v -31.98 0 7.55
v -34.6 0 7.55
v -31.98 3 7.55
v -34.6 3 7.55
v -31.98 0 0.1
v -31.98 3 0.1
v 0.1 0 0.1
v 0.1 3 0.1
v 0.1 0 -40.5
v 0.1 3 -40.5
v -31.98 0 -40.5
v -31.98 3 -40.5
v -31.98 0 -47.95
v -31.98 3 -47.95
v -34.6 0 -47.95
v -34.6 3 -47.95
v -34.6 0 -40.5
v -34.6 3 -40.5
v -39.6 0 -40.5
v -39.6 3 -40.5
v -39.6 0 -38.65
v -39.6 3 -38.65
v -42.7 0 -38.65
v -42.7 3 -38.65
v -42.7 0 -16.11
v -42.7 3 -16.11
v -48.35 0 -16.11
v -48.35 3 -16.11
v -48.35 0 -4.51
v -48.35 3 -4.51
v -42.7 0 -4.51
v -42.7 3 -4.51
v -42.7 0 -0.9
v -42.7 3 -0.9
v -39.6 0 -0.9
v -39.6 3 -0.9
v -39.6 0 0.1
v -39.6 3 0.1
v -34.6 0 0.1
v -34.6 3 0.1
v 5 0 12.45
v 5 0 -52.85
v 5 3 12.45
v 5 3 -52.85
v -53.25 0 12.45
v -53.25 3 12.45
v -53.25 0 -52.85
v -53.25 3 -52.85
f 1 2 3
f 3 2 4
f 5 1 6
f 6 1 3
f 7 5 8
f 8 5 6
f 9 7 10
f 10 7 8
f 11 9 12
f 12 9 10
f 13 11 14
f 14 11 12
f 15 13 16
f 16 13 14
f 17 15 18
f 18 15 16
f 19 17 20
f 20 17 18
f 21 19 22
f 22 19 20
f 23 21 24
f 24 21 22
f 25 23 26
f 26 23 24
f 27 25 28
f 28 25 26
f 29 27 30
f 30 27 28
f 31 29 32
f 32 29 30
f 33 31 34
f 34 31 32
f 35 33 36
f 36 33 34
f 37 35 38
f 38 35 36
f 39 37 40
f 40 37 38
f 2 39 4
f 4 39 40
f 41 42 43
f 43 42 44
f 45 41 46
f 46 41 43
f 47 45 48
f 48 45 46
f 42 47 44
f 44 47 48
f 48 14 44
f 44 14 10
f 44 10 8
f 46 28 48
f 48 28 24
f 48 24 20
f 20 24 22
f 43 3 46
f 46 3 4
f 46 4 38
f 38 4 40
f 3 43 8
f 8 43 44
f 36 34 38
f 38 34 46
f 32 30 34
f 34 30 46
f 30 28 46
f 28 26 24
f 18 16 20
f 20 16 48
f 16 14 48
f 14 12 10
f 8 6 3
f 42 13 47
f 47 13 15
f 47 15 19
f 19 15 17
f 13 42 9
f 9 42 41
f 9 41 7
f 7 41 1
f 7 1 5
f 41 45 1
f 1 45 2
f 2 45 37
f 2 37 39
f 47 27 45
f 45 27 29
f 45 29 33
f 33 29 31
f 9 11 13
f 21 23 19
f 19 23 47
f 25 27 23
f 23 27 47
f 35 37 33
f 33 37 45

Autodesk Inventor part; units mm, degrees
ref_plane "YZ Plane" through (0, 0, 0) normal (1, 0, 0) x (0, 1, 0)
ref_plane "XZ Plane" through (0, 0, 0) normal (0, 1, 0) x (-1, 0, 0)
ref_plane "XY Plane" through (0, 0, 0) normal (0, 0, 1) x (1, 0, 0)
sketch "Sketch1" plane through (0, 0, 0) normal (0, 1, 0) x (-1, 0, 0)
  line L0 (0, 0) -> (32.08, 0)
  line L1 (39.5, 0) -> (39.5, -1)
  line L2 (39.5, -40.4) -> (34.5, -40.4)
  line L3 (0, -40.4) -> (0, 0)
  line L4 (39.5, -20.2) -> (34.5, -20.2) construction
  line L5 (34.5, 7.45) -> (32.08, 7.45)
  line L6 (32.08, 7.45) -> (32.08, 0)
  line L7 (32.08, -47.85) -> (34.5, -47.85)
  line L8 (34.5, -47.85) -> (34.5, -40.4)
  line L9 (42.6, -1) -> (39.5, -1)
  line L10 (39.5, -1) -> (39.5, -38.55) construction
  line L11 (39.5, -38.55) -> (42.6, -38.55)
  line L12 (42.6, -38.55) -> (42.6, -16.01)
  line L13 (48.25, -4.61) -> (42.6, -4.61)
  line L14 (42.6, -4.61) -> (42.6, -16.01) construction
  line L15 (42.6, -16.01) -> (48.25, -16.01)
  line L16 (48.25, -16.01) -> (48.25, -4.61)
  line L17 (48.25, 7.45) -> (0, 7.45) construction
  line L18 (0, 7.45) -> (0, -47.85) construction
  line L19 (0, -47.85) -> (48.25, -47.85) construction
  line L20 (48.25, -47.85) -> (48.25, 7.45) construction
  line L21 (-5, 12.45) -> (53.25, 12.45)
  line L22 (53.25, 12.45) -> (53.25, -52.85)
  line L23 (53.25, -52.85) -> (-5, -52.85)
  line L24 (-5, -52.85) -> (-5, 12.45)
  line L25 (34.5, 0) -> (39.5, 0)
  line L26 (32.08, 0) -> (34.5, 0) construction
  line L27 (34.5, -40.4) -> (32.08, -40.4) construction
  line L28 (32.08, -40.4) -> (0, -40.4)
  line L29 (39.5, -1) -> (39.5, -38.55) construction
  line L30 (39.5, -38.55) -> (39.5, -40.4)
  line L31 (42.6, -4.61) -> (42.6, -1)
  line L32 (42.6, -16.01) -> (42.6, -4.61) construction
  line L33 (32.08, 0) -> (32.08, -40.4) construction
  line L34 (34.5, 0) -> (34.5, 7.45)
  line L35 (34.5, -40.4) -> (34.5, 0) construction
  line L36 (32.08, -40.4) -> (32.08, -47.85)
  line L37 (34.6, 7.55) -> (31.98, 7.55)
  line L38 (31.98, 7.55) -> (31.98, 0.1)
  line L39 (31.98, 0.1) -> (-0.1, 0.1)
  line L40 (-0.1, 0.1) -> (-0.1, -40.5)
  line L41 (-0.1, -40.5) -> (31.98, -40.5)
  line L42 (31.98, -40.5) -> (31.98, -47.95)
  line L43 (31.98, -47.95) -> (34.6, -47.95)
  line L44 (34.6, -47.95) -> (34.6, -40.5)
  line L45 (34.6, -40.5) -> (39.6, -40.5)
  line L46 (39.6, -40.5) -> (39.6, -38.65)
  line L47 (39.6, -38.65) -> (42.7, -38.65)
  line L48 (42.7, -38.65) -> (42.7, -16.11)
  line L49 (42.7, -16.11) -> (48.35, -16.11)
  line L50 (48.35, -16.11) -> (48.35, -4.51)
  line L51 (48.35, -4.51) -> (42.7, -4.51)
  line L52 (42.7, -4.51) -> (42.7, -0.9)
  line L53 (42.7, -0.9) -> (39.6, -0.9)
  line L54 (39.6, -0.9) -> (39.6, 0.1)
  line L55 (39.6, 0.1) -> (34.6, 0.1)
  line L56 (34.6, 0.1) -> (34.6, 7.55)
  point P0 (41.05, -1)
  point P1 (42.6, -10.31)
  point P2 (33.29, -47.85)
  point P3 (48.25, -10.31)
  point P4 (33.29, 7.45)
  point P5 (0, -20.2)
  dimension "d0" = 39.5
  dimension "d1" = 40.4
  dimension "d2" = 5
  dimension "d3" = 2.42
  dimension "d4" = 55.3
  dimension "d5" = 3.1
  dimension "d6" = 37.55
  dimension "d8" = 5.65
  dimension "d9" = 11.4
  dimension "d10" = 4.61
  dimension "d11" = 5
  dimension "d12" = 0.1
extrude "Extrusion1" add sketch "Sketch1" along normal blind 3 contours L21 L22 L23 L24
properties part number "ft5330m_profile_v2"
